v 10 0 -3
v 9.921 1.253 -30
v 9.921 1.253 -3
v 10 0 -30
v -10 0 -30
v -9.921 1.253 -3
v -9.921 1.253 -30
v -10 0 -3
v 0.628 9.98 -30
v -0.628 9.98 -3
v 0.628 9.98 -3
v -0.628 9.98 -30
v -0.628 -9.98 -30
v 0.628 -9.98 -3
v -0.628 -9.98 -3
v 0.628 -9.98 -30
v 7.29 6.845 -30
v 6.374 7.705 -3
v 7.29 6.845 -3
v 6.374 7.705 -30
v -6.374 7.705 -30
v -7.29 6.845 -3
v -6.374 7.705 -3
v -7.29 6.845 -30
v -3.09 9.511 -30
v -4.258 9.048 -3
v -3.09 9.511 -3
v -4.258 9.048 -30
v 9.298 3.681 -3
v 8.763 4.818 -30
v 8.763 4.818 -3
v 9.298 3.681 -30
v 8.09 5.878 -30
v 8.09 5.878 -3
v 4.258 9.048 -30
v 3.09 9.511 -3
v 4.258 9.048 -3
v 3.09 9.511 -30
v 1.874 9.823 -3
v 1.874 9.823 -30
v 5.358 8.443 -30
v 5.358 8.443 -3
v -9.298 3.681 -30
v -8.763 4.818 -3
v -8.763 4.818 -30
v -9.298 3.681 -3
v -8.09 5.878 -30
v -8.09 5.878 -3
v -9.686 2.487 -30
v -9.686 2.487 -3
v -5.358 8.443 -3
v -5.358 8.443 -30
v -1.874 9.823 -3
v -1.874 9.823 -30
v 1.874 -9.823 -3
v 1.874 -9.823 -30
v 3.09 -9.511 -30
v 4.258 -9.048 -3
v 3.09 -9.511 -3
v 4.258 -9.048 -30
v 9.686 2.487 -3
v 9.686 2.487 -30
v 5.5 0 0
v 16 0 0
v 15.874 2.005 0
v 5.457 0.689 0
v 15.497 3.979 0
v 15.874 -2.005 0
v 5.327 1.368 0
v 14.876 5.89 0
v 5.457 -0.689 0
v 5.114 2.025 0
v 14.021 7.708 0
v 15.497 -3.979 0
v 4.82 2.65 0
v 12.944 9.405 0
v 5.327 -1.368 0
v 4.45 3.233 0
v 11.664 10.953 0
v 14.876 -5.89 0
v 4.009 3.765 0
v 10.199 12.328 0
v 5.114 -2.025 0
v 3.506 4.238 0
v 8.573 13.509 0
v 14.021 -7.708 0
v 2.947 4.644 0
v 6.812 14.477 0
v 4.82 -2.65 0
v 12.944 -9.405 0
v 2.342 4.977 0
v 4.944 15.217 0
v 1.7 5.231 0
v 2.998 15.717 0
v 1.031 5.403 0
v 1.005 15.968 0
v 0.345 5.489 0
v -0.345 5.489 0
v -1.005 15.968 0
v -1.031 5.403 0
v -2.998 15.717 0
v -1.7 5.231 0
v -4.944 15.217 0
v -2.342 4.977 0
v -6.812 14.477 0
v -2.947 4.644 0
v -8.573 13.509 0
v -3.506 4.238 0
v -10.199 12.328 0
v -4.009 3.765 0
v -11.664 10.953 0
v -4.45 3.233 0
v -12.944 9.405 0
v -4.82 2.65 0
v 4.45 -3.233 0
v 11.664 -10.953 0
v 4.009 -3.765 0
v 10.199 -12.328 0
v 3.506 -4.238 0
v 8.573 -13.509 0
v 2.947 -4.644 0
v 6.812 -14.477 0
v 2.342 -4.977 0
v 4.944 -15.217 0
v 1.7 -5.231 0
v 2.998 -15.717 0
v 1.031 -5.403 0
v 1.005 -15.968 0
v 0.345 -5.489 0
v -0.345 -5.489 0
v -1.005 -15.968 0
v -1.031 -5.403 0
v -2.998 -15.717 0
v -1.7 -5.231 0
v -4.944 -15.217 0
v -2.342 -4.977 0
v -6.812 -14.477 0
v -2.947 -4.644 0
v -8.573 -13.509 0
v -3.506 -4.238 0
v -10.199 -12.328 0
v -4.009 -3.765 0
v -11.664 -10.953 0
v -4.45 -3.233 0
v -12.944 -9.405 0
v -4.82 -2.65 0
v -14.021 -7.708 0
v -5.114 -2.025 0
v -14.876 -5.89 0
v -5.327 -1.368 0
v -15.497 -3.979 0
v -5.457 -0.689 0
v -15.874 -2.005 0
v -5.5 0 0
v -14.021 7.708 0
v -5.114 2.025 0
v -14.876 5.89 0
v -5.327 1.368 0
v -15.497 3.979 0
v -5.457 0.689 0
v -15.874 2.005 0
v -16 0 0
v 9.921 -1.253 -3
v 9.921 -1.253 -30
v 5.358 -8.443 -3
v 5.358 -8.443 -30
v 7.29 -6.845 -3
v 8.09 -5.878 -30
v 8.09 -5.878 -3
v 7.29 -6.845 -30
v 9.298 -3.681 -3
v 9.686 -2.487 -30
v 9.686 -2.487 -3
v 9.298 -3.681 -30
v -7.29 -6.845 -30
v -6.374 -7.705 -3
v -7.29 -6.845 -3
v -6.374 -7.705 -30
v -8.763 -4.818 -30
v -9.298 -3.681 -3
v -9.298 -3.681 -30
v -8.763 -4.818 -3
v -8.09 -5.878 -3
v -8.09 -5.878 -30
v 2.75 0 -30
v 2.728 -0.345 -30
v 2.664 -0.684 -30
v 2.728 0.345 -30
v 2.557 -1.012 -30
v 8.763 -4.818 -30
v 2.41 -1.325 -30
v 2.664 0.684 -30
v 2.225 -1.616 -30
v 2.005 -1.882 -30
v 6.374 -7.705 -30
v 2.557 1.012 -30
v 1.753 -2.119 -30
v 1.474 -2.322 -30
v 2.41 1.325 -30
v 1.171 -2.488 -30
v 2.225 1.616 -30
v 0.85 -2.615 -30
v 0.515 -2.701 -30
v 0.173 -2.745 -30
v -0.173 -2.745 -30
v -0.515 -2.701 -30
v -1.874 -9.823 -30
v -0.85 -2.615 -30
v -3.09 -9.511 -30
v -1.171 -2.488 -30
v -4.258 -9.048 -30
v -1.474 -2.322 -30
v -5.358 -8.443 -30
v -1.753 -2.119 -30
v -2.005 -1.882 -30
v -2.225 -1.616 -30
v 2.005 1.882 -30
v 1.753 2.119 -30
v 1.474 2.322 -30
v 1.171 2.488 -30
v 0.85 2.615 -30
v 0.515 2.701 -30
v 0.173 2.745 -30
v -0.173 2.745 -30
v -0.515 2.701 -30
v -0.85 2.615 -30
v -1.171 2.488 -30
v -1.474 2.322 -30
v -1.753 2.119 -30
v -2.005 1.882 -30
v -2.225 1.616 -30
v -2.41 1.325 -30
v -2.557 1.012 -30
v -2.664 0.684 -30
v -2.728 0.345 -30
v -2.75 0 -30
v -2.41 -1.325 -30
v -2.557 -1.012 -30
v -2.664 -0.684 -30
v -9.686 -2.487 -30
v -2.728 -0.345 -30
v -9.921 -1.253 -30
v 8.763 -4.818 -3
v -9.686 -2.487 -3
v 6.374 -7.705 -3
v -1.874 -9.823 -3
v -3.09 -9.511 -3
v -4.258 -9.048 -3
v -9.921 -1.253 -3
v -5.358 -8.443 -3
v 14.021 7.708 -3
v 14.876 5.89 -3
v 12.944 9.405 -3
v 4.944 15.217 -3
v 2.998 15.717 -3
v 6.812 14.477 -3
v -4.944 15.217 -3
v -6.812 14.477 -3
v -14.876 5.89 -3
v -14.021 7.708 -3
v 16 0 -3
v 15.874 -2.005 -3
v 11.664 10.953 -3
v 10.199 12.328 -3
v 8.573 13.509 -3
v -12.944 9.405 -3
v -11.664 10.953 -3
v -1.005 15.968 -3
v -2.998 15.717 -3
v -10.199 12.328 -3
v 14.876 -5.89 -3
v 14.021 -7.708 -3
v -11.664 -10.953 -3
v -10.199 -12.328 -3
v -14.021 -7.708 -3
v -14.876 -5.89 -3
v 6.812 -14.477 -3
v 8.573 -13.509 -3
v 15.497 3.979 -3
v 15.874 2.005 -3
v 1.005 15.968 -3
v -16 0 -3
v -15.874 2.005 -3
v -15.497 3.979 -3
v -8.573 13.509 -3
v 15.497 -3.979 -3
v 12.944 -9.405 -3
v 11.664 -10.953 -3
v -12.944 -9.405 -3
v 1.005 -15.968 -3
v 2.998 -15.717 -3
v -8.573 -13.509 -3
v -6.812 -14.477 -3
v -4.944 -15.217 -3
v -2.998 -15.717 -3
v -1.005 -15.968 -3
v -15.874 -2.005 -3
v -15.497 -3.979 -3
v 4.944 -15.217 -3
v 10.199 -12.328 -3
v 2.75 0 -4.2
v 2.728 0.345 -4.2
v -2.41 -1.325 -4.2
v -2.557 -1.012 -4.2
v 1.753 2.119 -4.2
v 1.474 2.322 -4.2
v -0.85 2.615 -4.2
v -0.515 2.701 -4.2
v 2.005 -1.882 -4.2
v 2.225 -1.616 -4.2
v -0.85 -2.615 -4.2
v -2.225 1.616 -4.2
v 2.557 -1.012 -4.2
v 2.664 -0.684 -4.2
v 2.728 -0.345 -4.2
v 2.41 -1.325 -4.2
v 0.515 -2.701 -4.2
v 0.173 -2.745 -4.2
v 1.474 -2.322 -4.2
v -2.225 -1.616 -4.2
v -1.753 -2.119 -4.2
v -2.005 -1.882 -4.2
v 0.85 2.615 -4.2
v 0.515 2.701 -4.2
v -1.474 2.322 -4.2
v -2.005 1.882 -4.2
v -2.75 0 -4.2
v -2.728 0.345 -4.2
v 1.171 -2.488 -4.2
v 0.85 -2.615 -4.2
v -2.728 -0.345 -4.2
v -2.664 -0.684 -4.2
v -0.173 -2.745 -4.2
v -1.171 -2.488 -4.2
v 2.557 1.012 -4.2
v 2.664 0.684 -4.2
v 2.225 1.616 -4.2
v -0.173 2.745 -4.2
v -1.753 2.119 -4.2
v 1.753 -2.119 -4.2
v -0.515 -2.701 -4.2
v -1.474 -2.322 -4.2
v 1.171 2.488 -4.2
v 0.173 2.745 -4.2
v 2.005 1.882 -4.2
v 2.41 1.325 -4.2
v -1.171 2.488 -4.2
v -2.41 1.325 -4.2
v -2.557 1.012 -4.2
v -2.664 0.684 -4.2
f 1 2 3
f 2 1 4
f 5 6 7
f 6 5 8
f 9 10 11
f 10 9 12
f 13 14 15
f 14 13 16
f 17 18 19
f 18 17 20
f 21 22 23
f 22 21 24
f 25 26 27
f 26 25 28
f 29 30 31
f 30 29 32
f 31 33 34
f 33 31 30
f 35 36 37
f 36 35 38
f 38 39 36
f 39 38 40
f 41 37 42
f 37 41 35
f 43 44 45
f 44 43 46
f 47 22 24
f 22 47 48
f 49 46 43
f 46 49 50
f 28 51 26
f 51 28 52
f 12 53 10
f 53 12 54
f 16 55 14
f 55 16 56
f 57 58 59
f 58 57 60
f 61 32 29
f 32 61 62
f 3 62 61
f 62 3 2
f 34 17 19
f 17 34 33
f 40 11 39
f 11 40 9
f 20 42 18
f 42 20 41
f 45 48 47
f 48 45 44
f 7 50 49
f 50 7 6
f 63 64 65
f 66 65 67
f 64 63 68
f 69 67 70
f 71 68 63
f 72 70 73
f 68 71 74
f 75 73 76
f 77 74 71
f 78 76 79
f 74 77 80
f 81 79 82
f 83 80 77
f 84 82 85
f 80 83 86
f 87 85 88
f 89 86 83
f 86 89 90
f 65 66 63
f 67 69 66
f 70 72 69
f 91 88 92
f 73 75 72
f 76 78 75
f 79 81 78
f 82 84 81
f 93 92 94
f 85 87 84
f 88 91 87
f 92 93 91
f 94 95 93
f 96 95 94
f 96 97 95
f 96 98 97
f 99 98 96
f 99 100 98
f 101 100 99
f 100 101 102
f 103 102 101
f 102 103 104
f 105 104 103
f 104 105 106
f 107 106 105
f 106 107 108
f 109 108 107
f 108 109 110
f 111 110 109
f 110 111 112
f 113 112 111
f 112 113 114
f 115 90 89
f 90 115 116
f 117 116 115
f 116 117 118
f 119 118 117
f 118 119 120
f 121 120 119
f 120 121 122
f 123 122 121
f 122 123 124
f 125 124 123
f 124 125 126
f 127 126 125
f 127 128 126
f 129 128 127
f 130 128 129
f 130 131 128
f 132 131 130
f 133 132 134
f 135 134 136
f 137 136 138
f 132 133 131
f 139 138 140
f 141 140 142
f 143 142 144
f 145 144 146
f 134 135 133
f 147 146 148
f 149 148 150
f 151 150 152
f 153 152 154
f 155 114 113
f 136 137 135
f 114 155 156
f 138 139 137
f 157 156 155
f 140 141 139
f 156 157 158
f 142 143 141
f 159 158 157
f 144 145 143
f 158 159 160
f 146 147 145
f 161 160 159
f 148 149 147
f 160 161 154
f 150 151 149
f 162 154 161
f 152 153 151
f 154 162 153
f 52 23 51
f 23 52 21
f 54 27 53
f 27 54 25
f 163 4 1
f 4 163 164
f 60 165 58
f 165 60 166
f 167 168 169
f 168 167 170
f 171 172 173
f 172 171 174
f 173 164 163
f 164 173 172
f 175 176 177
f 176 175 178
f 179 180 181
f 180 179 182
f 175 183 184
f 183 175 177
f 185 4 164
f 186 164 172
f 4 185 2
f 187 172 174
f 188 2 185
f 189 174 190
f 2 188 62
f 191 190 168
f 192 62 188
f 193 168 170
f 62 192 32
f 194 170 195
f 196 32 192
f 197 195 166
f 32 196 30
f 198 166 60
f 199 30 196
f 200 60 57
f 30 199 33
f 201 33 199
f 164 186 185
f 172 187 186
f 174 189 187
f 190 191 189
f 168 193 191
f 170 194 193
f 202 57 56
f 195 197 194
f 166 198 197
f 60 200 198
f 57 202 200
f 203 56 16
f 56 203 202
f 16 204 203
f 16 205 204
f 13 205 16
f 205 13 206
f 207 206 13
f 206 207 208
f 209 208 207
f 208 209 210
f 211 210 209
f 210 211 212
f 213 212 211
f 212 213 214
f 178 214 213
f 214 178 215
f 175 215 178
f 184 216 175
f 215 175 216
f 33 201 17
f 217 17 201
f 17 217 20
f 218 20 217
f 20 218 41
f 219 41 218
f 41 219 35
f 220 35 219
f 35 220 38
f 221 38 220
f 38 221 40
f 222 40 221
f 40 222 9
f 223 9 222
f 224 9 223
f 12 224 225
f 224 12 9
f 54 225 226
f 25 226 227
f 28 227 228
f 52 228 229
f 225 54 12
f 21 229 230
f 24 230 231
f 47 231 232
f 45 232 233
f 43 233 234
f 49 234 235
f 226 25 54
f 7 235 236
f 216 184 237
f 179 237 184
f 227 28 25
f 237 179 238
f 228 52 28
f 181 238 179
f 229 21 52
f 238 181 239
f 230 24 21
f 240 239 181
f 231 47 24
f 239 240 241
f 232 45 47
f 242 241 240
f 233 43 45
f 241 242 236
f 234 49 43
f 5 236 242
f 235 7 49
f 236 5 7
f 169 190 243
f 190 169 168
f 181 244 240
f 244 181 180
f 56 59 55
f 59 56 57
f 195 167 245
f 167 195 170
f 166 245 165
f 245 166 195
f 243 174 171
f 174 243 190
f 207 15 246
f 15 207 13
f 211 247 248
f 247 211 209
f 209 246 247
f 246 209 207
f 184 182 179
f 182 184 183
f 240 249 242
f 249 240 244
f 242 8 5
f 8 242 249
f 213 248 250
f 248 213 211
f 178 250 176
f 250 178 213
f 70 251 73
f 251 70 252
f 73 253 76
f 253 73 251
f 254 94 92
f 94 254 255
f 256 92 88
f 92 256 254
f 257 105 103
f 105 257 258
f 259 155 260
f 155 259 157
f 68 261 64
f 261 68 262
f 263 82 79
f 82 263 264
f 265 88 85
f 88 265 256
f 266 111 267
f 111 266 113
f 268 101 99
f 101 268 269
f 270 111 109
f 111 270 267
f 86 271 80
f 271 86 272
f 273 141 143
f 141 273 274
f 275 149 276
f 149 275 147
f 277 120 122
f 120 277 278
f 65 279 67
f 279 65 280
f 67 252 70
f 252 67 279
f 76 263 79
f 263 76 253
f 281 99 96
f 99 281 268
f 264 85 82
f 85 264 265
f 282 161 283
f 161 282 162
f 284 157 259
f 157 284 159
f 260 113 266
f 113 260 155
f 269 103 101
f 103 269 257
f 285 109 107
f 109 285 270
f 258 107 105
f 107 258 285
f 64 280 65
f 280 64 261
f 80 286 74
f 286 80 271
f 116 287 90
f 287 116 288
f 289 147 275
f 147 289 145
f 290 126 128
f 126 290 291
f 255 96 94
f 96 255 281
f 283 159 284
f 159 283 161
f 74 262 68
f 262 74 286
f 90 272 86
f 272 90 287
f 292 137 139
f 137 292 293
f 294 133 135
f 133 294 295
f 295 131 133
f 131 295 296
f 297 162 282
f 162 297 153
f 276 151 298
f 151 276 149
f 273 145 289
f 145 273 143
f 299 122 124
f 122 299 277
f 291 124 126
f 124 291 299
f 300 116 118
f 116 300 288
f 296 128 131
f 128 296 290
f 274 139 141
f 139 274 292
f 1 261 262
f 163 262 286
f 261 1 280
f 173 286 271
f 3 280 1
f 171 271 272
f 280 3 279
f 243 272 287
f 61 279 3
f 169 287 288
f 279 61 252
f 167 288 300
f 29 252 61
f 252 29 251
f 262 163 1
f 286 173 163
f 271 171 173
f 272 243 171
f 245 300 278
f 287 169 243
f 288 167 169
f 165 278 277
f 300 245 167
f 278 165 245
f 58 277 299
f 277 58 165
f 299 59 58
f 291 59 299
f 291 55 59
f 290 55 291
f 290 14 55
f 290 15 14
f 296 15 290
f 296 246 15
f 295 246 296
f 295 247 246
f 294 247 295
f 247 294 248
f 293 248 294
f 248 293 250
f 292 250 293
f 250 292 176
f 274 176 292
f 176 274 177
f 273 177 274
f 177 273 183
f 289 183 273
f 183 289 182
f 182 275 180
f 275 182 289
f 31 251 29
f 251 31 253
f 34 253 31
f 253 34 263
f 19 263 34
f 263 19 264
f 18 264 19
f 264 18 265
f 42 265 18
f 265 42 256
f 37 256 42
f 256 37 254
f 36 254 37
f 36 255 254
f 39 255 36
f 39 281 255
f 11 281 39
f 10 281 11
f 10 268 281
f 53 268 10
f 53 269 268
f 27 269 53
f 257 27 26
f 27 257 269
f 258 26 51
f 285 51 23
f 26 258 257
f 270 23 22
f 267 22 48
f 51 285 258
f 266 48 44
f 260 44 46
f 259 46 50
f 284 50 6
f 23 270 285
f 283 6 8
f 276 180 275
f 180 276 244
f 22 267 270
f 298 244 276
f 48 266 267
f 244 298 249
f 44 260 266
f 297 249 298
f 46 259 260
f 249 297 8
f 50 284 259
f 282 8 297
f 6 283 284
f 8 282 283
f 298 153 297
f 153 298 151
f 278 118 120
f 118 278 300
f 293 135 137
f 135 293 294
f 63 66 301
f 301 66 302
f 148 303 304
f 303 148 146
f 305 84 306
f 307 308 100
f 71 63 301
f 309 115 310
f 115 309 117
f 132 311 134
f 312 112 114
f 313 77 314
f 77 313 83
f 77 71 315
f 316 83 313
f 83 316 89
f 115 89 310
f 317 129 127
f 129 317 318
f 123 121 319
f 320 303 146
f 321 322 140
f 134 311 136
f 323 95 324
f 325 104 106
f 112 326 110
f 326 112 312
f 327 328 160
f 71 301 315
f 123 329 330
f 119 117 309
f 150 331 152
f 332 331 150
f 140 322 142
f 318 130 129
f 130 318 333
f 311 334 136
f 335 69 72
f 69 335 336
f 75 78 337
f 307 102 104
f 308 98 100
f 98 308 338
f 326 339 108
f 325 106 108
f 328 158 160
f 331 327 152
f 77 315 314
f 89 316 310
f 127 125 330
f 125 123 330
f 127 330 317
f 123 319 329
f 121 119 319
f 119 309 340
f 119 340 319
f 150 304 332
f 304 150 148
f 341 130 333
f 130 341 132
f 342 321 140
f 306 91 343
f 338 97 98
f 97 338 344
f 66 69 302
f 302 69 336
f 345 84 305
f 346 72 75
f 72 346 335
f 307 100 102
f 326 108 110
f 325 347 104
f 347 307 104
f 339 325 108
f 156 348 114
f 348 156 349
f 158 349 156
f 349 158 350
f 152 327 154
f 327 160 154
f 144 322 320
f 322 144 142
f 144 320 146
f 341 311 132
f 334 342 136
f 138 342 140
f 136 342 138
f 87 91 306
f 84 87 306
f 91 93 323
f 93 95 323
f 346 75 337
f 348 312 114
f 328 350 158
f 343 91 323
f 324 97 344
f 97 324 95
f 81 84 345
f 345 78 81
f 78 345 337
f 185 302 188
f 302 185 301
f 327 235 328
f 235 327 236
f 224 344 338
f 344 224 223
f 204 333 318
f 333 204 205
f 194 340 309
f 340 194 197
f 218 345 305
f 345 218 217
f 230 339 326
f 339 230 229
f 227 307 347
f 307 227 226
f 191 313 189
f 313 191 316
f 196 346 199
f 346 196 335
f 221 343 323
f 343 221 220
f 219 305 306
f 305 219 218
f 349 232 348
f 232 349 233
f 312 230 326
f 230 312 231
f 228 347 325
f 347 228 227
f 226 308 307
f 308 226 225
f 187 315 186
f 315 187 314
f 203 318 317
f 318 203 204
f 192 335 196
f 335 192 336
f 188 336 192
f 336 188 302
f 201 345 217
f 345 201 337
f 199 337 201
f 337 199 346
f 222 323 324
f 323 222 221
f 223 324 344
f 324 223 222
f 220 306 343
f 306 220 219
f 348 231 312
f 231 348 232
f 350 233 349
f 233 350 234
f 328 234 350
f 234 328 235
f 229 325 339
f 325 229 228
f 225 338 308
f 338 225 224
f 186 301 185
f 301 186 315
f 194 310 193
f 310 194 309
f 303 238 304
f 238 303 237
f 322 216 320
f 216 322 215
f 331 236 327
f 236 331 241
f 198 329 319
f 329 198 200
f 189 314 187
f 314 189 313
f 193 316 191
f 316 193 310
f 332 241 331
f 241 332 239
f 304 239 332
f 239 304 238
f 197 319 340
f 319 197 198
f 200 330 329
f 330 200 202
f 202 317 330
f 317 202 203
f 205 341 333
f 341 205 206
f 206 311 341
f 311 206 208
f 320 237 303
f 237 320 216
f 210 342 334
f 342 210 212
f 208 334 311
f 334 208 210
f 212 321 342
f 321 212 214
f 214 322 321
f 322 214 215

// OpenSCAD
$fn = 50;


difference() {
	union() {
		translate(v = [0, 0, -30.0000000000]) {
			cylinder(h = 30, r = 10.0000000000);
		}
		translate(v = [0, 0, -3.0000000000]) {
			cylinder(h = 3, r = 16.0000000000);
		}
	}
	union() {
		translate(v = [0, 0, 0]) {
			rotate(a = [0, 0, 0]) {
				difference() {
					union() {
						#translate(v = [0, 0, -30.0000000000]) {
							cylinder(h = 30, r = 2.2500000000);
						}
						#translate(v = [0, 0, -4.2000000000]) {
							cylinder(h = 4.2000000000, r = 10.0000000000, r1 = 2.7500000000, r2 = 5.5000000000);
						}
						#translate(v = [0, 0, -30.0000000000]) {
							cylinder(h = 30, r = 2.7500000000);
						}
						#translate(v = [0, 0, -30.0000000000]) {
							cylinder(h = 30, r = 2.2500000000);
						}
					}
					union();
				}
			}
		}
	}
}
